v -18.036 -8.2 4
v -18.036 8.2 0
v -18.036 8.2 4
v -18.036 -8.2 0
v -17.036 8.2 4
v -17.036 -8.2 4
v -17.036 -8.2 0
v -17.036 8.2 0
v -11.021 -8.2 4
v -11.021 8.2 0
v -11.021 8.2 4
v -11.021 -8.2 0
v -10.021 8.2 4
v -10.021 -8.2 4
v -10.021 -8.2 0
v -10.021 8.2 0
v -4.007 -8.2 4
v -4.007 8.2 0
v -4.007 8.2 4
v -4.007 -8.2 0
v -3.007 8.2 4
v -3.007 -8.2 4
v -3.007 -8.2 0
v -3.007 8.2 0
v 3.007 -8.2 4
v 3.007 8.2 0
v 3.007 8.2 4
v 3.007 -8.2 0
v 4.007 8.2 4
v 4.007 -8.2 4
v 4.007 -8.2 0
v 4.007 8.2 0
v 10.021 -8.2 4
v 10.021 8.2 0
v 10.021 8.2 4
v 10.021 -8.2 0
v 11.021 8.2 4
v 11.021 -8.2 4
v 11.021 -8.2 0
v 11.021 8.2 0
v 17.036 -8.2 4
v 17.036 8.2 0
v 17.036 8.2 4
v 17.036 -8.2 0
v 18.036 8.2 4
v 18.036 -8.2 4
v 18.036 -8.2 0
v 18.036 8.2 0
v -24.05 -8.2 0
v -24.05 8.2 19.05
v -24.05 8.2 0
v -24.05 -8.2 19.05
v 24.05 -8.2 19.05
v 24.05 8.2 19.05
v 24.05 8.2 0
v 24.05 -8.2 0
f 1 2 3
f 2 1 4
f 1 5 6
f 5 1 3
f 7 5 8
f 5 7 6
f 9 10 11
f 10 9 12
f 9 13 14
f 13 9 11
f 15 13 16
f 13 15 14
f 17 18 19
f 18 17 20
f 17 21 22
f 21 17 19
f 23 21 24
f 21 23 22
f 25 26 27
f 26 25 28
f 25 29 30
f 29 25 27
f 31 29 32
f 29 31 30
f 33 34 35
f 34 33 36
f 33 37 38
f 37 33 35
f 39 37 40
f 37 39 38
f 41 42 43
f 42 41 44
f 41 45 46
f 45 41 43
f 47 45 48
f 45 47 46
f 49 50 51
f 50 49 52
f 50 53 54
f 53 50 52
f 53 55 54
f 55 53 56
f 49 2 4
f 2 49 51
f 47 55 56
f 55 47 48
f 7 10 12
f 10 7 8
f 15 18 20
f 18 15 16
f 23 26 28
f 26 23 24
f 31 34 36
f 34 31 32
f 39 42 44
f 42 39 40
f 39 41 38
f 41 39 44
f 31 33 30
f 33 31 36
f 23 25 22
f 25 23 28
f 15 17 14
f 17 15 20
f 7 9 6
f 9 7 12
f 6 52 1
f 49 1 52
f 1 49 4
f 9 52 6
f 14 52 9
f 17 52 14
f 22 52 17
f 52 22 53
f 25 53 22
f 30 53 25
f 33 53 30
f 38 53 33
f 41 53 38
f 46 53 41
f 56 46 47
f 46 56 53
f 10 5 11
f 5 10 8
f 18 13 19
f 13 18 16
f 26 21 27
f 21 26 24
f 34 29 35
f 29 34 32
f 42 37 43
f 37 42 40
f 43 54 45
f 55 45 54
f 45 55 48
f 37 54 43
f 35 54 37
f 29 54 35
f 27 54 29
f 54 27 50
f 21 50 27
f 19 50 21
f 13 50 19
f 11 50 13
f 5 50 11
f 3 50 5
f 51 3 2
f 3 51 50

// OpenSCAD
// --- TEKTONOLOGY KNEELER BOOT FOOT: 7-RIB INSERT ---

leg_l = 48.0; 
leg_w = 16.3;
half_h = 19.05; // 3/4 inch
tightness = 0.1; // Adjust this: 0.0 for snug, 0.2 for very tight
$fn = 64;

ribs = 7; 
gap_w = 1.0; 


module internal_tpu_insert() {
    insert_l = leg_l + tightness;
    insert_w = leg_w + tightness;
    
    
    // This calculates rib width so the total set fits exactly
    rib_w = (insert_l - ((ribs - 1) * gap_w)) / ribs; 
    
    // The "Pitch" is the distance from the start of one rib to the start of the next
    pitch = rib_w + gap_w; 

    difference() {
        // 1. THE MAIN BODY (The "Core")
        translate([0, 0, half_h/2])
            cube([insert_l, insert_w, half_h], center=true);
            
        // CENTERING LOGIC
        // start at the far left edge and move right
        // The "- (insert_l/2) + (rib_w/2)" centers the first rib
        for (i = [0 : ribs - 1]) {
            x_pos = (i * pitch) - (insert_l/2) + (rib_w/2);
            
            // GAPS between the ribs: half a pitch to cut the space
            if (i < ribs - 1) {
                gap_x_pos = x_pos + (pitch/2);
                translate([gap_x_pos, 0, 0]) 
                    cube([gap_w, insert_w + 2, 8], center=true);
            }
        }
    }
}

internal_tpu_insert();
